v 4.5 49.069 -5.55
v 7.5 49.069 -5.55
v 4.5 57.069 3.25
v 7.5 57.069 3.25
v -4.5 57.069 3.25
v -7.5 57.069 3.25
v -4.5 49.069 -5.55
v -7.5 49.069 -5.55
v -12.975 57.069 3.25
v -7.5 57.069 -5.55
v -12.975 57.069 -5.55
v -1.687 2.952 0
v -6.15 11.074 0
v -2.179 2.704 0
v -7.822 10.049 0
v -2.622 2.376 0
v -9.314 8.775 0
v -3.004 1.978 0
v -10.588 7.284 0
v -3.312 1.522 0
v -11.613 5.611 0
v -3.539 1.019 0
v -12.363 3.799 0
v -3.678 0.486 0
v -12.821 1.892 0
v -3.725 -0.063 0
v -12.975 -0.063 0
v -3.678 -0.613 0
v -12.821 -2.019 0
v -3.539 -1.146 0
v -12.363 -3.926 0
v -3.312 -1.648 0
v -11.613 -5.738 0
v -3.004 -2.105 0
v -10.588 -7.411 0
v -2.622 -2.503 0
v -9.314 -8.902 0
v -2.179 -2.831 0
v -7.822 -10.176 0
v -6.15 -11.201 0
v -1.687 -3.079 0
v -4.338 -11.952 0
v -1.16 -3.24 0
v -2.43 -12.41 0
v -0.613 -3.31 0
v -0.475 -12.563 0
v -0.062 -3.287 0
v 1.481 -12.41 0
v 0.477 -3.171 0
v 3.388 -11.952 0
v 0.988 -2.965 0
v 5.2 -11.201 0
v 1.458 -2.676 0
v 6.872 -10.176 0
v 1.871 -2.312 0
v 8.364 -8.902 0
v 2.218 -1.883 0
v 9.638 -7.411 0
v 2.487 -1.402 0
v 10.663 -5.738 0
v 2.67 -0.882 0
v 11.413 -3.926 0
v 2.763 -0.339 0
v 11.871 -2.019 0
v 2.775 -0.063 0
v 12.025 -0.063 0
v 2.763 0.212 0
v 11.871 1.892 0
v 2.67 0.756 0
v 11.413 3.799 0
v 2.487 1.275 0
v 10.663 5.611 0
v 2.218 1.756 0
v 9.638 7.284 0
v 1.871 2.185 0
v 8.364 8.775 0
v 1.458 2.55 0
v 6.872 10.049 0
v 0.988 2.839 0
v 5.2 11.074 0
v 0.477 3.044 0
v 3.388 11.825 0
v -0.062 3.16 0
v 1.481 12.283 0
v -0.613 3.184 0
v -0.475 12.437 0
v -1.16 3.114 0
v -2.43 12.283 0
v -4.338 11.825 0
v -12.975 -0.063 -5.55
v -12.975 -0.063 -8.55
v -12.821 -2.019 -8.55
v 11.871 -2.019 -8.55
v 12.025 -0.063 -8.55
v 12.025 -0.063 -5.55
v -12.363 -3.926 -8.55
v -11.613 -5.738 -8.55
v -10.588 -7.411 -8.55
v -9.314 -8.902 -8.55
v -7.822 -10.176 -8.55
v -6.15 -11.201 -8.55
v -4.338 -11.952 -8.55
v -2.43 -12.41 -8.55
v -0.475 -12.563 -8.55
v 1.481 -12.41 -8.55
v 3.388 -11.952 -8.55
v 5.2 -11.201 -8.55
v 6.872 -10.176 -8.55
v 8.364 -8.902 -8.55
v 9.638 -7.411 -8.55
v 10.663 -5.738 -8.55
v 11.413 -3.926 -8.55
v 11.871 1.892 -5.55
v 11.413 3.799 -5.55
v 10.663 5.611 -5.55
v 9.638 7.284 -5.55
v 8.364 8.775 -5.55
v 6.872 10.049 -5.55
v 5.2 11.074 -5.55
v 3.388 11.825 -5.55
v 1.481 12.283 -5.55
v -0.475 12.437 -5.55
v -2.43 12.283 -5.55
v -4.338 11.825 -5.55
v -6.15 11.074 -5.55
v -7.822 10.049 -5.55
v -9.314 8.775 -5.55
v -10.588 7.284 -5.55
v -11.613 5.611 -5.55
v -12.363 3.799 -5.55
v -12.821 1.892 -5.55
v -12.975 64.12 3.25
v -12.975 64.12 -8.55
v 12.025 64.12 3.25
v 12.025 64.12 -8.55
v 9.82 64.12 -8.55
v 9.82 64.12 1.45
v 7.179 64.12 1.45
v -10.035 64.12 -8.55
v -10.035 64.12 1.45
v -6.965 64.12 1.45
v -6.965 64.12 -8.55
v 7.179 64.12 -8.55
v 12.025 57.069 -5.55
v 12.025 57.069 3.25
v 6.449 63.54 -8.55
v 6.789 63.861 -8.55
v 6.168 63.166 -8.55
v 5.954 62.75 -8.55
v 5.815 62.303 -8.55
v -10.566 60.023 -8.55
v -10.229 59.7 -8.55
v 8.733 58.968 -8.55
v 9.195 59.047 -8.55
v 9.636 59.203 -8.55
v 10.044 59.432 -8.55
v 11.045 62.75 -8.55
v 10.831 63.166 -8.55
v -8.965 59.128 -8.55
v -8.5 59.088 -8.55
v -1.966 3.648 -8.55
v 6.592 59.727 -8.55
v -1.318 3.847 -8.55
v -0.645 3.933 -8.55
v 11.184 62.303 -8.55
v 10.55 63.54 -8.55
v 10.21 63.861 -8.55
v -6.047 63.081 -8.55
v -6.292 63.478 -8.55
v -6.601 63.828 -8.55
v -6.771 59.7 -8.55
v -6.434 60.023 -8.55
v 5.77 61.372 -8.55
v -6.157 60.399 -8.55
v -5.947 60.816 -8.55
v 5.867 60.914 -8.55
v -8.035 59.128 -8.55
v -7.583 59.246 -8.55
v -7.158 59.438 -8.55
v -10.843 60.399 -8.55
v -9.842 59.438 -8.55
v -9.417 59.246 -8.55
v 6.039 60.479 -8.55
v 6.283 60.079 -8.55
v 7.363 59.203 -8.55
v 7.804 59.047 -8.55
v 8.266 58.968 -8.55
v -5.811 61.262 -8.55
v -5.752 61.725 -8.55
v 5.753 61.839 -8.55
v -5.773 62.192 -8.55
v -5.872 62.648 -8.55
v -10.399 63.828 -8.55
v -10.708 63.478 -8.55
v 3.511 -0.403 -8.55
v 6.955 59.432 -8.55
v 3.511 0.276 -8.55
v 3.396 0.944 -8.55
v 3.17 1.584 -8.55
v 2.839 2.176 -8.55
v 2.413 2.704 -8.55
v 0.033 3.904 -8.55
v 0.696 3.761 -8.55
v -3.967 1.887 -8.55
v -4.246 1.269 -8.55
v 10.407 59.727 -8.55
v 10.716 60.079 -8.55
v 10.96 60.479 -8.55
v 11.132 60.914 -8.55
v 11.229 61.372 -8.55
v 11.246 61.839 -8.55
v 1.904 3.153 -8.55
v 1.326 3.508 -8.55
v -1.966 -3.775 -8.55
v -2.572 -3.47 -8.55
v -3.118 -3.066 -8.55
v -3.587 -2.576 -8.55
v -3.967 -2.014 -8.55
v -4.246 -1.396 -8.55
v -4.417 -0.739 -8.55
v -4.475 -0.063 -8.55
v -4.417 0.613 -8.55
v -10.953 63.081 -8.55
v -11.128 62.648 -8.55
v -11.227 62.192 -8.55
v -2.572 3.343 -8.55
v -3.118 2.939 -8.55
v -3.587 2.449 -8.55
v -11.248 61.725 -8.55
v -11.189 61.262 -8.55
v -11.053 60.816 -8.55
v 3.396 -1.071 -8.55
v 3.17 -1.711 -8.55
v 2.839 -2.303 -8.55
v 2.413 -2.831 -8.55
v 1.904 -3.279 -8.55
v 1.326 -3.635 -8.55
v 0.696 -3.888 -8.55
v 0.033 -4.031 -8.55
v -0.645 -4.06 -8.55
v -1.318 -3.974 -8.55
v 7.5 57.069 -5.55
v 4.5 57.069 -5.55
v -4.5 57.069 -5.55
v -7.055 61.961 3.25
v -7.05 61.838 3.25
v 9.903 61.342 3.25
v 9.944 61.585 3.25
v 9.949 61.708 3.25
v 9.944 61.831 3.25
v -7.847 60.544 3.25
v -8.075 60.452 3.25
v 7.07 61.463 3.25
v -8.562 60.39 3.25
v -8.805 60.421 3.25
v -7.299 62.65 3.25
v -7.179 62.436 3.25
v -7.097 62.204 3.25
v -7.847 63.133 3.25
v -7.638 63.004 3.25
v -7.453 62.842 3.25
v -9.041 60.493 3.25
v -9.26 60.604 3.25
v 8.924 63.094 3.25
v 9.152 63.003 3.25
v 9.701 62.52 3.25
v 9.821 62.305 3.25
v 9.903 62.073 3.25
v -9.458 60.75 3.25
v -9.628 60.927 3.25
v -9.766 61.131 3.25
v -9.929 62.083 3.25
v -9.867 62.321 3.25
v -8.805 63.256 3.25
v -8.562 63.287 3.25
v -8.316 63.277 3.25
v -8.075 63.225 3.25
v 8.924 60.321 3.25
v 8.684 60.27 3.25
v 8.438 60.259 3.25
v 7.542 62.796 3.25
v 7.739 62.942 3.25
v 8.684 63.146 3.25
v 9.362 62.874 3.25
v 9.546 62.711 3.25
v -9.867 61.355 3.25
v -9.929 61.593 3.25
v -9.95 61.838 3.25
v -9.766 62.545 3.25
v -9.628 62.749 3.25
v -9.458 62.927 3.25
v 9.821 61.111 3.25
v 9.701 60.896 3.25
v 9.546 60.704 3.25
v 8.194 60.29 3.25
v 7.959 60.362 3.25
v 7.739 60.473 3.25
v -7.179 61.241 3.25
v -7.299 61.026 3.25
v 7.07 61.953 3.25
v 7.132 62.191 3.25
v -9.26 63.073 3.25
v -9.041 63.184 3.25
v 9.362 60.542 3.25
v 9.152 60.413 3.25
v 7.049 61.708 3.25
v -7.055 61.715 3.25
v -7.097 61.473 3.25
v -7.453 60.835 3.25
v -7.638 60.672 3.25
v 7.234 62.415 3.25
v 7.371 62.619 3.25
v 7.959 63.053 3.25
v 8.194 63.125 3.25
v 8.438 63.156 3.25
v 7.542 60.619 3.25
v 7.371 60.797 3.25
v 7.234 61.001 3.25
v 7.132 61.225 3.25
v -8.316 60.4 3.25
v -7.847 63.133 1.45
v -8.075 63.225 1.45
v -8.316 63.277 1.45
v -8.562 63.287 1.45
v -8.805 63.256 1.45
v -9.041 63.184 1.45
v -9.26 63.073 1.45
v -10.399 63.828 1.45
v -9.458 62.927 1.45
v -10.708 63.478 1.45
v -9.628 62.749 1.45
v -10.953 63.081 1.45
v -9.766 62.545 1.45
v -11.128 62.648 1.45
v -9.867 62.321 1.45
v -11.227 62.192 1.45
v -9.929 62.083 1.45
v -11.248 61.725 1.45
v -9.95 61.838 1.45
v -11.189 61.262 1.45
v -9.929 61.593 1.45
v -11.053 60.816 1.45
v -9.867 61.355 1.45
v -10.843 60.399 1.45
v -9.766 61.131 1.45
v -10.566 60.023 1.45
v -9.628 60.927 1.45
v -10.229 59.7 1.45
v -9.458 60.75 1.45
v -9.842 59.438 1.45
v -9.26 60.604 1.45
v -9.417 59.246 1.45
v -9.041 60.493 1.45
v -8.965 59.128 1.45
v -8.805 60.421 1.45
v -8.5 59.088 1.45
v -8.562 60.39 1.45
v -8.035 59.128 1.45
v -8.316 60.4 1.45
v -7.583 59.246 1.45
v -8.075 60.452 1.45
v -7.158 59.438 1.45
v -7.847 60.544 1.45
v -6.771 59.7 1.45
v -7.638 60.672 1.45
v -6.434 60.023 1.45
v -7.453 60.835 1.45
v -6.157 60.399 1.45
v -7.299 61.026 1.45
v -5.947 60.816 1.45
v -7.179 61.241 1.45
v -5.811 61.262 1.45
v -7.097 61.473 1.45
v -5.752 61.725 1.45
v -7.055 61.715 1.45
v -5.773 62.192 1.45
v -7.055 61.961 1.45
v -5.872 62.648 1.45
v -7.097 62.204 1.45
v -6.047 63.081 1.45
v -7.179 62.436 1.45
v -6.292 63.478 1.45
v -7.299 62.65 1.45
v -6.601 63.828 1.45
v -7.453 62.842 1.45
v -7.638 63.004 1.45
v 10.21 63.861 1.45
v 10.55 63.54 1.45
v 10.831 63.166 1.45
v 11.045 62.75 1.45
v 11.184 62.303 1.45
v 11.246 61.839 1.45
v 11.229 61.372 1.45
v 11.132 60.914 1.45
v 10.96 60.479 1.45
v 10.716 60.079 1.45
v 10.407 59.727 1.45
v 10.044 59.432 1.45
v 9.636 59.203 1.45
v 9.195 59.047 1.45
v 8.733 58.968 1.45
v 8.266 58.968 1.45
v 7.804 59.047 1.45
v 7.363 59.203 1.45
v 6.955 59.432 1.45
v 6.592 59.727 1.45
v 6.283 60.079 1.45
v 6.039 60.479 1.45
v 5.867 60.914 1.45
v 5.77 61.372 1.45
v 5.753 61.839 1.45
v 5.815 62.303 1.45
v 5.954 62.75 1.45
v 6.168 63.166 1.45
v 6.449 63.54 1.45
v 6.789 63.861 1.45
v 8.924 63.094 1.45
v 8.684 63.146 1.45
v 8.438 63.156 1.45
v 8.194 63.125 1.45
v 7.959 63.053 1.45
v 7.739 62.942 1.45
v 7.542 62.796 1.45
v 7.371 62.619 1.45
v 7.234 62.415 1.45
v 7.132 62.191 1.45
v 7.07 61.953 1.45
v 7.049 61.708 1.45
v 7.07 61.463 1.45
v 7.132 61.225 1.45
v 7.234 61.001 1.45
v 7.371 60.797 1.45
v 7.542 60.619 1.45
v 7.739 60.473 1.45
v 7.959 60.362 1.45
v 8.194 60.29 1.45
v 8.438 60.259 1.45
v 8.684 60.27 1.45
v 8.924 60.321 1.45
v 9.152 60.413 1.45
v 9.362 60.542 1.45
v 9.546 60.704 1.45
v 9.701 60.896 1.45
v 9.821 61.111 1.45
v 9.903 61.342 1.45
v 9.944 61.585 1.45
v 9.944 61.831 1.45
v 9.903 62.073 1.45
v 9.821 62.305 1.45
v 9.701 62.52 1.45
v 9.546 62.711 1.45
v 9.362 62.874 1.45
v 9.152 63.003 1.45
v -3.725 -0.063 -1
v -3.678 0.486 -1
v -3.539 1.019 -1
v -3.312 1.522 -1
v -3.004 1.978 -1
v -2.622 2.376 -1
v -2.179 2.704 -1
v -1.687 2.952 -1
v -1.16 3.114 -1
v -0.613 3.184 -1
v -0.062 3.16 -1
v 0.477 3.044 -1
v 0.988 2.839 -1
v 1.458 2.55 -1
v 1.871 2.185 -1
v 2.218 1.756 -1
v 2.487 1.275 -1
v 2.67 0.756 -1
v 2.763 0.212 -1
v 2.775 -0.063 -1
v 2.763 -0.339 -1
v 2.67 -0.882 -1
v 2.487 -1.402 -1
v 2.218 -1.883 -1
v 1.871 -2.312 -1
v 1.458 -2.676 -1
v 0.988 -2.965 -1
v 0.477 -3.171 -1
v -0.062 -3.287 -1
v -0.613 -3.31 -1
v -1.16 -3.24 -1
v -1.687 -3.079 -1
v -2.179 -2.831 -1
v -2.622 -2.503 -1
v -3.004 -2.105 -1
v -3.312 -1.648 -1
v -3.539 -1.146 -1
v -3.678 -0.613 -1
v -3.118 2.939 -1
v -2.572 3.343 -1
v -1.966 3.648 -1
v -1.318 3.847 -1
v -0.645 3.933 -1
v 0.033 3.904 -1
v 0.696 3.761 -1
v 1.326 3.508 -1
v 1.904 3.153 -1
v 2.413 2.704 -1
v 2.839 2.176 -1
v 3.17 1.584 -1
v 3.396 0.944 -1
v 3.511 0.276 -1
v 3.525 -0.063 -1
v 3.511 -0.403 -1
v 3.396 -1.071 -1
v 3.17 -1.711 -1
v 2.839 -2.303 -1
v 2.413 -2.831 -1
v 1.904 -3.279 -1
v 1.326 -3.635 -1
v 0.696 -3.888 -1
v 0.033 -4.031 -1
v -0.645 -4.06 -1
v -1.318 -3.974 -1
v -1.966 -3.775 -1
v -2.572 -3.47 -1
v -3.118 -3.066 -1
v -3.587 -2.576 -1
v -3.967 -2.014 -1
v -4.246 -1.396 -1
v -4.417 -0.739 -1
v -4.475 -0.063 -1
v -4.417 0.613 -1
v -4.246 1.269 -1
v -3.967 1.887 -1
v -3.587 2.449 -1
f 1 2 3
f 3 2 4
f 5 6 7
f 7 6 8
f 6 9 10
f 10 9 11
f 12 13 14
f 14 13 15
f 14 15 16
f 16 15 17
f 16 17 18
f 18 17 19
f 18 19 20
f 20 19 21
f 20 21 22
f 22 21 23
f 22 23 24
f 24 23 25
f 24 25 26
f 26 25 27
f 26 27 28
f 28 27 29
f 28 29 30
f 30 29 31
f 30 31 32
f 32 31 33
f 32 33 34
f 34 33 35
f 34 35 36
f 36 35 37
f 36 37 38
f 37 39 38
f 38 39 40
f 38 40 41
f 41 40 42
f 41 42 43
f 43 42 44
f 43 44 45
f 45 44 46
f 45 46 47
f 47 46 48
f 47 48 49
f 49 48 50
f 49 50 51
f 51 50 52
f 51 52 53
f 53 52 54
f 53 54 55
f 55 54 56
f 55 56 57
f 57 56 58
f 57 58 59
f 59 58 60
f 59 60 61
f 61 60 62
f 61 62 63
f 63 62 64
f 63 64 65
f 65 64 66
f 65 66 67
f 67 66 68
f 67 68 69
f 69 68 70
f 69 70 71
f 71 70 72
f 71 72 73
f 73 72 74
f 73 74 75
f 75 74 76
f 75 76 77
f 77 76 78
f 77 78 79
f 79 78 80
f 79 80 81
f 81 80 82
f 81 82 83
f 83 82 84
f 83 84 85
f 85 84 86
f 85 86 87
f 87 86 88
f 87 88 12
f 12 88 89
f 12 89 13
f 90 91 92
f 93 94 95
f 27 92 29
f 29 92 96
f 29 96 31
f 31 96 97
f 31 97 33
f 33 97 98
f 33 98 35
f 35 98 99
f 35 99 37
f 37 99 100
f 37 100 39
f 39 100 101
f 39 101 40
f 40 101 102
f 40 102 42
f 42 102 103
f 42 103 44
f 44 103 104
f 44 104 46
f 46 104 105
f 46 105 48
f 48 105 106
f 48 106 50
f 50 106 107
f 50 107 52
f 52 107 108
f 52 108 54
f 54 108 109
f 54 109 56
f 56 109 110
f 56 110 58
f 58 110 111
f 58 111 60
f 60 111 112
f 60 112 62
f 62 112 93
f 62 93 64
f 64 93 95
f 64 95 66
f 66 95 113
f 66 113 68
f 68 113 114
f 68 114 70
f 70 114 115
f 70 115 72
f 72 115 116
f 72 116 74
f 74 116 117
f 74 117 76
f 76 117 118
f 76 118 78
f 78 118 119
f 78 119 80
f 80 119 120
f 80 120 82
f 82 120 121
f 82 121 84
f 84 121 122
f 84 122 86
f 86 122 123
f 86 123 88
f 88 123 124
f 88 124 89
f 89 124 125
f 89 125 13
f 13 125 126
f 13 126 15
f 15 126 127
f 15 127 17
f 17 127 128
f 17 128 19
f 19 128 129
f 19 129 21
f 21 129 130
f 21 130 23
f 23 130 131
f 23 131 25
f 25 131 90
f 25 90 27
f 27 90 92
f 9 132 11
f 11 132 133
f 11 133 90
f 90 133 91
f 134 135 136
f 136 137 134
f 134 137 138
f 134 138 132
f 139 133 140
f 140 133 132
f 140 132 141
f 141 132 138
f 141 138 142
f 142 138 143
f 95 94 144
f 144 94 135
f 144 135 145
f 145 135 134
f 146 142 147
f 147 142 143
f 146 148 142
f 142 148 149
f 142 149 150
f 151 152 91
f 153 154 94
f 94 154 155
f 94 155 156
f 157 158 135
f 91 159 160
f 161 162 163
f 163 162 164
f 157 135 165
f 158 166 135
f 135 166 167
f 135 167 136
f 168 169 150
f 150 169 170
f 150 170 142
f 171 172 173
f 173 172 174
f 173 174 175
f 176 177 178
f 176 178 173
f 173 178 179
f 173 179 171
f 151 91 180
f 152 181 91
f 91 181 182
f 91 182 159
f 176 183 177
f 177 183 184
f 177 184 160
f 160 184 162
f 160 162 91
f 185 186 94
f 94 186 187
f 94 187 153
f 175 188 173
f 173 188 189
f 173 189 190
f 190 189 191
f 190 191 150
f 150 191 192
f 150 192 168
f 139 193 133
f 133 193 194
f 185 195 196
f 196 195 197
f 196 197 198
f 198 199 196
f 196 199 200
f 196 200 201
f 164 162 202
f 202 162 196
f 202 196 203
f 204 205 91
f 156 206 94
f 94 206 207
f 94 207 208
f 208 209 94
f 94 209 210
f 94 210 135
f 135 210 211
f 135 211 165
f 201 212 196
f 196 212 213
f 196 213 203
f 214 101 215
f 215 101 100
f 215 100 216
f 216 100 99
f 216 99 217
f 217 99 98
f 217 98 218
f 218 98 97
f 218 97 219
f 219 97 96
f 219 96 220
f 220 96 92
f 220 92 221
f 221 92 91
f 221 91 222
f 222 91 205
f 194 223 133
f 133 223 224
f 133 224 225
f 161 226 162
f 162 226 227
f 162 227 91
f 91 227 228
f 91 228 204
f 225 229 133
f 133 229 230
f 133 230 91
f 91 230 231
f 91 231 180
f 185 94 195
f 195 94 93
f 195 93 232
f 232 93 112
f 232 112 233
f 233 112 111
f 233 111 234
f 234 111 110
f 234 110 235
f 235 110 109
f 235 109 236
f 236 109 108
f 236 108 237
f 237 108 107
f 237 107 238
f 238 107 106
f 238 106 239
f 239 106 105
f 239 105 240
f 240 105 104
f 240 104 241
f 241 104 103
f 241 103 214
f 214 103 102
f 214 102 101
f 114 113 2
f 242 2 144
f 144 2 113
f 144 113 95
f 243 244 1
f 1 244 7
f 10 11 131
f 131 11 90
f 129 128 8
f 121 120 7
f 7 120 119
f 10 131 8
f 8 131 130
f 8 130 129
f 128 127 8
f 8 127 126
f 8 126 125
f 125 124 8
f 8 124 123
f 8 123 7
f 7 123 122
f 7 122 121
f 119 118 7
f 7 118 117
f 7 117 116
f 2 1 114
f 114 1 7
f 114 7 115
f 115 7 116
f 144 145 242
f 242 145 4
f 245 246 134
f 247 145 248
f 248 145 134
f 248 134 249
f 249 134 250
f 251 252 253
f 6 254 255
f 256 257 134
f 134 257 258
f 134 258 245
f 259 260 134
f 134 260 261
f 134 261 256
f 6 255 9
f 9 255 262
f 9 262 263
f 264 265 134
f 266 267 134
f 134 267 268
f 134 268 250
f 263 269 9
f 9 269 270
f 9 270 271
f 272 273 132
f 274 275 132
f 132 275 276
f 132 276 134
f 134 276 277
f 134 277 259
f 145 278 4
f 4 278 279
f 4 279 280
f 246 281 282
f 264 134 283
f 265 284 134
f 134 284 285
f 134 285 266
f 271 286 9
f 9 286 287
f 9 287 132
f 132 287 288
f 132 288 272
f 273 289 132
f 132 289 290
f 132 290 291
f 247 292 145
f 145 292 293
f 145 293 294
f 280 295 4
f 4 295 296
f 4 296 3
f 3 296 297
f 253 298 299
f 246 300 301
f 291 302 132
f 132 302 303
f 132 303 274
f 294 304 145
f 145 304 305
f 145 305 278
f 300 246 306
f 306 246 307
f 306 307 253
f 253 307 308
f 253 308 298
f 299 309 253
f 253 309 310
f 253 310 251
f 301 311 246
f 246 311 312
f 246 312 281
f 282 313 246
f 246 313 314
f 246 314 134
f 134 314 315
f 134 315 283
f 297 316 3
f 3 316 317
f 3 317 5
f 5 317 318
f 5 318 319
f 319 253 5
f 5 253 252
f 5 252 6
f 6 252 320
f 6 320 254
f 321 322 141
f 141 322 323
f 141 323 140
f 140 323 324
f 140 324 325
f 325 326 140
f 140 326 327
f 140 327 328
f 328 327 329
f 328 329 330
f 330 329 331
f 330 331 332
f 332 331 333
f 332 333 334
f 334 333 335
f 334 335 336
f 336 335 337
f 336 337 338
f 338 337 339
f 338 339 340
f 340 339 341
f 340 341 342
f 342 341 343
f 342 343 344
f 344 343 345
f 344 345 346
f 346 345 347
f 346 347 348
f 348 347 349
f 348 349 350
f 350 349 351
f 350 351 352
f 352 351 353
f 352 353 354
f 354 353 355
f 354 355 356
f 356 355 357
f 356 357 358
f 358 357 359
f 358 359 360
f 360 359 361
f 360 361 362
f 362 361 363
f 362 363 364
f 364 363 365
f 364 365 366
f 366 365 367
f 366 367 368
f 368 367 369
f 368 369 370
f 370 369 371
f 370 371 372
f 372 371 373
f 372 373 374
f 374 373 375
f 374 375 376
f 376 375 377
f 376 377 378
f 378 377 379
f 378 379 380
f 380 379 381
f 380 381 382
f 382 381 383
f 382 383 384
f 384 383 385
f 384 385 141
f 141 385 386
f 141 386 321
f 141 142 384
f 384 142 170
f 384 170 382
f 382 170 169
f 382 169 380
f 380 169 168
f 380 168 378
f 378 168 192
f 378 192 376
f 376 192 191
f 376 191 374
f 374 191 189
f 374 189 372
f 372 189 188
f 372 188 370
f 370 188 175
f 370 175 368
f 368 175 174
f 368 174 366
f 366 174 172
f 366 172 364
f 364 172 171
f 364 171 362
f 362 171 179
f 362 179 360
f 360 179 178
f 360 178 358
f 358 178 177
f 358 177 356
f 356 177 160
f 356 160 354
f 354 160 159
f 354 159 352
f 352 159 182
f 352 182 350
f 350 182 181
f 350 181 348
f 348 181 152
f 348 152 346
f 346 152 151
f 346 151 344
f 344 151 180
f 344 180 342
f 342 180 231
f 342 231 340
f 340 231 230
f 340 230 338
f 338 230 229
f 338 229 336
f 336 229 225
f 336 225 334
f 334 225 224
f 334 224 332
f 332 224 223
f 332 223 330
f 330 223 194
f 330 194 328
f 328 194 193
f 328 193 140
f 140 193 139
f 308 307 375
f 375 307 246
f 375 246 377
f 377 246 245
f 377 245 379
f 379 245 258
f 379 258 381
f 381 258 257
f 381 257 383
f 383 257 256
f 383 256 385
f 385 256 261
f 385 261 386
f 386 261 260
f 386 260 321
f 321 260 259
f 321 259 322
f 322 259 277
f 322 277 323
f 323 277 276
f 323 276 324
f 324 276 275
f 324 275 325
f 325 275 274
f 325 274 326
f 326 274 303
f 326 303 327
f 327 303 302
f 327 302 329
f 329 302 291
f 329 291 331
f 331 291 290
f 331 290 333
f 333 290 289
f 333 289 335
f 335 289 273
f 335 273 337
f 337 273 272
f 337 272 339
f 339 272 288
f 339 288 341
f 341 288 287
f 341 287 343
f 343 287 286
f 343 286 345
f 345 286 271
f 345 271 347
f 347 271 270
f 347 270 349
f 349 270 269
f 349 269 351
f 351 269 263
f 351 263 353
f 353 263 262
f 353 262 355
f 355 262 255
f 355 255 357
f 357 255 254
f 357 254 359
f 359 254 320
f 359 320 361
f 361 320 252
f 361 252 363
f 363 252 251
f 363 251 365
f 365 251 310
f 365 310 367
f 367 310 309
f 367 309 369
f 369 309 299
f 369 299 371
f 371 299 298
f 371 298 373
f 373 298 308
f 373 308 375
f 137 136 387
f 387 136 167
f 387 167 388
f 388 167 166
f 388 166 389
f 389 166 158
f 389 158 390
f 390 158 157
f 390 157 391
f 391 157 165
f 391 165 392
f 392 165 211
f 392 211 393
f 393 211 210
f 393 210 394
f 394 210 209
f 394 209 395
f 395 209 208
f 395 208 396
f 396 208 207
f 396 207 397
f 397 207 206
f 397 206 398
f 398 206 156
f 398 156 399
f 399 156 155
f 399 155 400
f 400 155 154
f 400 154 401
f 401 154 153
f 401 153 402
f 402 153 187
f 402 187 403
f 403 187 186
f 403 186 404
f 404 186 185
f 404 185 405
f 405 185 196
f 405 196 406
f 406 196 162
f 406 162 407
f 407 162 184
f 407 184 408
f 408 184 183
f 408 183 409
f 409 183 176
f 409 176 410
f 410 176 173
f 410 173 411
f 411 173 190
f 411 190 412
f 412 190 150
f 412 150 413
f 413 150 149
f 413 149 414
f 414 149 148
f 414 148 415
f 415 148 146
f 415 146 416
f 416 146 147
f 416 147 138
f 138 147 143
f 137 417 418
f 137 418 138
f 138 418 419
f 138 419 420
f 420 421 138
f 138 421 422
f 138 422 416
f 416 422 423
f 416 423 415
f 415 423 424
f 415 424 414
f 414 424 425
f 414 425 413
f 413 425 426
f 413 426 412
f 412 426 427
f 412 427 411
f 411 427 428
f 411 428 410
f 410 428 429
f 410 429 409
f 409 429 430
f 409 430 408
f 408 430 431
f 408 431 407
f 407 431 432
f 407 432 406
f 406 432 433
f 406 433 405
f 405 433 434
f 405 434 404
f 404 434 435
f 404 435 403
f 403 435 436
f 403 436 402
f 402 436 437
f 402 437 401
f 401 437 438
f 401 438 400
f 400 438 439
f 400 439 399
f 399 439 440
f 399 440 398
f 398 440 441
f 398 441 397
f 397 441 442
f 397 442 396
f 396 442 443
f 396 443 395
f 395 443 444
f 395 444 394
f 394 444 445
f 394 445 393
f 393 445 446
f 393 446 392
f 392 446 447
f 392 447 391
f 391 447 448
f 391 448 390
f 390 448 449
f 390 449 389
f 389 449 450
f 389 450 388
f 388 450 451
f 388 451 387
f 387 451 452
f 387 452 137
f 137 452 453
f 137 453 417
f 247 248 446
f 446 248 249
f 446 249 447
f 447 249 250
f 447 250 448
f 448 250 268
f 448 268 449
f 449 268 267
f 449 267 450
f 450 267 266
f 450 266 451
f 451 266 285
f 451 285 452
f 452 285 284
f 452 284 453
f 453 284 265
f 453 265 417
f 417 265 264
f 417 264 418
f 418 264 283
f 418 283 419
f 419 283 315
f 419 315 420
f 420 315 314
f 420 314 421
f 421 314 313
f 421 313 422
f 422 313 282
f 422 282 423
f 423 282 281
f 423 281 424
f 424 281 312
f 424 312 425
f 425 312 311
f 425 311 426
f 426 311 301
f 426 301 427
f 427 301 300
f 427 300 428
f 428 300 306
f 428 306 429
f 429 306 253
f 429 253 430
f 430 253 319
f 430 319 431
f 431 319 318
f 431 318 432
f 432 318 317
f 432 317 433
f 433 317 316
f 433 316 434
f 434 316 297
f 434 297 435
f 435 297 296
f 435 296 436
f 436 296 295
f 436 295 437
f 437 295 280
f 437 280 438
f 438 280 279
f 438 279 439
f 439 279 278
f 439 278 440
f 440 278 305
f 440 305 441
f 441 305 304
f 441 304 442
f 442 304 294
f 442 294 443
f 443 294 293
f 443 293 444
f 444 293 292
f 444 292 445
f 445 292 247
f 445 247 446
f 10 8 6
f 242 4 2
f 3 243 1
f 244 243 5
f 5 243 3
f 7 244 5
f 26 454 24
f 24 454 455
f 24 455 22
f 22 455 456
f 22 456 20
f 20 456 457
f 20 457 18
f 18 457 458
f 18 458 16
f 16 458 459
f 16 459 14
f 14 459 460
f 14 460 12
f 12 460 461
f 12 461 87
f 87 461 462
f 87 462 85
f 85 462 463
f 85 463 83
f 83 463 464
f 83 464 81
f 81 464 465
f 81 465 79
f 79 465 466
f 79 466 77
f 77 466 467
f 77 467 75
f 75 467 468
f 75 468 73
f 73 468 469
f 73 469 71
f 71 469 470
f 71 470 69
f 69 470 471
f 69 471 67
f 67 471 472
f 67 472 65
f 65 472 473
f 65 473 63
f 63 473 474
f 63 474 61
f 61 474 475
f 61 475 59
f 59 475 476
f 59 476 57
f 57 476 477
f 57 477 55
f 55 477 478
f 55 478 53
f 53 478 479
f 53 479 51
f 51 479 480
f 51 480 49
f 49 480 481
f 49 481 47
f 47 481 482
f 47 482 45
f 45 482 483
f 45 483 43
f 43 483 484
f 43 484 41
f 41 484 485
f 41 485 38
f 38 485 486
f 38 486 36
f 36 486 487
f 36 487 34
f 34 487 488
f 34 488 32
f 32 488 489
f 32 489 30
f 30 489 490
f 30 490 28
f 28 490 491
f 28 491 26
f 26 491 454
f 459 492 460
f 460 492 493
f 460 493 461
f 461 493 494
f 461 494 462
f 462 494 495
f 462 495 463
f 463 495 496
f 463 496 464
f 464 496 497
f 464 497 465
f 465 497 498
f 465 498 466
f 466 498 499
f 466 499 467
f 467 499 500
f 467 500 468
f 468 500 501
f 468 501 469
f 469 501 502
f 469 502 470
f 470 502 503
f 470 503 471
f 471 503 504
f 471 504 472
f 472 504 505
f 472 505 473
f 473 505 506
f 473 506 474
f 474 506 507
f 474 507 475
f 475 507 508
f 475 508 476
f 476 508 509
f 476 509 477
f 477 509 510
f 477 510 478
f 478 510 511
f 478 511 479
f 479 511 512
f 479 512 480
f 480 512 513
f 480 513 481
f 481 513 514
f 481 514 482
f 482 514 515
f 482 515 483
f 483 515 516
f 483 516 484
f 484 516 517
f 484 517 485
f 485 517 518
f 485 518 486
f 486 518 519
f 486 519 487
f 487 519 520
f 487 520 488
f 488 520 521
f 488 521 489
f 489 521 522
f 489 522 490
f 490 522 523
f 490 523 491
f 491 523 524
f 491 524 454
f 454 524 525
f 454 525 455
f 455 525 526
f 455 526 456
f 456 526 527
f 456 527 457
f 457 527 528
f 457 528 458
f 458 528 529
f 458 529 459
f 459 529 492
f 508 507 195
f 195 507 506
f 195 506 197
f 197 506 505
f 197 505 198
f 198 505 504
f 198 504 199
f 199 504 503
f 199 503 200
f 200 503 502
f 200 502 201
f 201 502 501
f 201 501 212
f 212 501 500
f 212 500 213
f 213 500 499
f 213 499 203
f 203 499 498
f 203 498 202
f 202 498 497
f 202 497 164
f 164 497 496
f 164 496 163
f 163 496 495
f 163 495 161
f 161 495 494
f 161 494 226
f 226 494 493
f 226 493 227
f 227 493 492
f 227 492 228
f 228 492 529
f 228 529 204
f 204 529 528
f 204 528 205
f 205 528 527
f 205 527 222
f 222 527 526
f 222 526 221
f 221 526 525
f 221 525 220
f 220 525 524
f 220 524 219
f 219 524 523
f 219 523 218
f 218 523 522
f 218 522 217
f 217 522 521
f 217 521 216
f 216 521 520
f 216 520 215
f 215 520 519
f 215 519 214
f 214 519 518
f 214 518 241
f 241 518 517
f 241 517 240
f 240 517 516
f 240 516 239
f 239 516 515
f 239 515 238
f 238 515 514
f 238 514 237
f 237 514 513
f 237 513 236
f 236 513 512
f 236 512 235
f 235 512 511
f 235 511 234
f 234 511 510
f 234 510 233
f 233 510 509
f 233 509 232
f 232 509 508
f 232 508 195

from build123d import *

# Parameters (mm, degrees)
ESBO_O2_R                           = 12.5
RESSALTO_EXTRUS_O1_DEPTH            = 5.55
RESSALTO_EXTRUS_O3_DEPTH            = 3
ESBO_O5_W                           = 25
ESBO_O5_H                           = 7.051040728
RESSALTO_EXTRUS_O4_DEPTH            = 11.8
REBAIXO_PARA_SHCS_M2_51_D           = 2.9
REBAIXO_PARA_SHCS_M2_51_CBORE_D     = 5.5
REBAIXO_PARA_SHCS_M2_51_CBORE_DEPTH = 10
NERVURA1_REACH                      = 67.976
ESBO_O10_WALL_W                     = 145.845066172
ESBO_O10_WALL_H                     = 15
CORTE_EXTRUS_O1_REACH               = 68.009
ESBO_O11_W                          = 9
ESBO_O11_H                          = 8
ESBO_O12_R                          = 3.25
CORTE_EXTRUS_O2_DEPTH               = 67.475439137
ESBO_O13_R                          = 4
CORTE_EXTRUS_O3_DEPTH               = 7.55


with BuildPart() as part:
    # Esboço2 → Ressalto-extrusão1 (new body)
    with BuildSketch(Plane.XY):
        with Locations((-0.474928023, -0.063425095)):
            Circle(ESBO_O2_R)
    extrude(amount=-RESSALTO_EXTRUS_O1_DEPTH)

    # Esboço4 → Ressalto-extrusão3 (add)
    with BuildSketch(Plane(origin=(0, 0, -5.55), x_dir=(-1, 0, 0), z_dir=(0, 0, -1))):
        with BuildLine():
            Line((-12.025071977, -0.063425095), (-12.025071977, 64.120162595))
            Line((-12.025071977, 64.120162595), (12.974928023, 64.120162595))
            Line((12.974928023, 64.120162595), (12.974928023, -0.063425095))
            ThreePointArc((12.974928023, -0.063425095), (0.474928023, -12.563425095), (-12.025071977, -0.063425095))
        make_face()
    extrude(amount=RESSALTO_EXTRUS_O3_DEPTH)

    # Esboço5 → Ressalto-extrusão4 (add)
    with BuildSketch(Plane(origin=(0, 0, -8.55), x_dir=(-1, 0, 0), z_dir=(0, 0, -1))):
        with Locations((0.474928023, 60.594642231)):
            Rectangle(ESBO_O5_W, ESBO_O5_H)
    extrude(amount=-RESSALTO_EXTRUS_O4_DEPTH)

    # Rebaixo para SHCS M2.51 (through all)
    with Locations(Plane(origin=(0, 0, -8.55), x_dir=(-1, 0, 0), z_dir=(0, 0, -1))):
        with Locations((-8.49949915, 61.707782077), (8.5, 61.838275999)):
            CounterBoreHole(REBAIXO_PARA_SHCS_M2_51_D / 2, REBAIXO_PARA_SHCS_M2_51_CBORE_D / 2, REBAIXO_PARA_SHCS_M2_51_CBORE_DEPTH)

    # Esboço10 wall → Nervura1 (add, up to next)
    with BuildSketch(Plane(origin=(0, 53.069121867, -1.15), x_dir=(0, -0.672672793996, -0.739940073396), z_dir=(0, 0.739940073396, -0.672672793996)), mode=Mode.PRIVATE) as nervura1_sk1:
        Rectangle(ESBO_O10_WALL_W, ESBO_O10_WALL_H)
    nervura1_tool1 = extrude(nervura1_sk1.sketch, amount=NERVURA1_REACH, mode=Mode.PRIVATE) - part.part
    add(nervura1_tool1.solids().sort_by_distance((0, 53.069121867, -1.15))[0])

    # Esboço11 → Corte-extrusão1 (cut, up to next)
    with BuildSketch(Plane.XY.offset(-5.55), mode=Mode.PRIVATE) as corte_extrus_o1_sk1:
        with Locations((0, 53.069121867)):
            Rectangle(ESBO_O11_W, ESBO_O11_H)
    corte_extrus_o1_tool1 = extrude(corte_extrus_o1_sk1.sketch, amount=CORTE_EXTRUS_O1_REACH, mode=Mode.PRIVATE) & part.part
    add(corte_extrus_o1_tool1.solids().sort_by_distance((0, 53.069122, -5.55))[0], mode=Mode.SUBTRACT)

    # Esboço12 → Corte-extrusão2 (cut, through all)
    with BuildSketch(Plane(origin=(0, 0, -8.55), x_dir=(-1, 0, 0), z_dir=(0, 0, -1))):
        with Locations((0.474928023, -0.063425095)):
            Circle(ESBO_O12_R)
    extrude(amount=-CORTE_EXTRUS_O2_DEPTH, mode=Mode.SUBTRACT)

    # Esboço13 → Corte-extrusão3 (cut)
    with BuildSketch(Plane(origin=(0, 0, -8.55), x_dir=(-1, 0, 0), z_dir=(0, 0, -1))):
        with Locations((0.474928023, -0.063425095)):
            Circle(ESBO_O13_R)
    extrude(amount=-CORTE_EXTRUS_O3_DEPTH, mode=Mode.SUBTRACT)


solid = part.part
